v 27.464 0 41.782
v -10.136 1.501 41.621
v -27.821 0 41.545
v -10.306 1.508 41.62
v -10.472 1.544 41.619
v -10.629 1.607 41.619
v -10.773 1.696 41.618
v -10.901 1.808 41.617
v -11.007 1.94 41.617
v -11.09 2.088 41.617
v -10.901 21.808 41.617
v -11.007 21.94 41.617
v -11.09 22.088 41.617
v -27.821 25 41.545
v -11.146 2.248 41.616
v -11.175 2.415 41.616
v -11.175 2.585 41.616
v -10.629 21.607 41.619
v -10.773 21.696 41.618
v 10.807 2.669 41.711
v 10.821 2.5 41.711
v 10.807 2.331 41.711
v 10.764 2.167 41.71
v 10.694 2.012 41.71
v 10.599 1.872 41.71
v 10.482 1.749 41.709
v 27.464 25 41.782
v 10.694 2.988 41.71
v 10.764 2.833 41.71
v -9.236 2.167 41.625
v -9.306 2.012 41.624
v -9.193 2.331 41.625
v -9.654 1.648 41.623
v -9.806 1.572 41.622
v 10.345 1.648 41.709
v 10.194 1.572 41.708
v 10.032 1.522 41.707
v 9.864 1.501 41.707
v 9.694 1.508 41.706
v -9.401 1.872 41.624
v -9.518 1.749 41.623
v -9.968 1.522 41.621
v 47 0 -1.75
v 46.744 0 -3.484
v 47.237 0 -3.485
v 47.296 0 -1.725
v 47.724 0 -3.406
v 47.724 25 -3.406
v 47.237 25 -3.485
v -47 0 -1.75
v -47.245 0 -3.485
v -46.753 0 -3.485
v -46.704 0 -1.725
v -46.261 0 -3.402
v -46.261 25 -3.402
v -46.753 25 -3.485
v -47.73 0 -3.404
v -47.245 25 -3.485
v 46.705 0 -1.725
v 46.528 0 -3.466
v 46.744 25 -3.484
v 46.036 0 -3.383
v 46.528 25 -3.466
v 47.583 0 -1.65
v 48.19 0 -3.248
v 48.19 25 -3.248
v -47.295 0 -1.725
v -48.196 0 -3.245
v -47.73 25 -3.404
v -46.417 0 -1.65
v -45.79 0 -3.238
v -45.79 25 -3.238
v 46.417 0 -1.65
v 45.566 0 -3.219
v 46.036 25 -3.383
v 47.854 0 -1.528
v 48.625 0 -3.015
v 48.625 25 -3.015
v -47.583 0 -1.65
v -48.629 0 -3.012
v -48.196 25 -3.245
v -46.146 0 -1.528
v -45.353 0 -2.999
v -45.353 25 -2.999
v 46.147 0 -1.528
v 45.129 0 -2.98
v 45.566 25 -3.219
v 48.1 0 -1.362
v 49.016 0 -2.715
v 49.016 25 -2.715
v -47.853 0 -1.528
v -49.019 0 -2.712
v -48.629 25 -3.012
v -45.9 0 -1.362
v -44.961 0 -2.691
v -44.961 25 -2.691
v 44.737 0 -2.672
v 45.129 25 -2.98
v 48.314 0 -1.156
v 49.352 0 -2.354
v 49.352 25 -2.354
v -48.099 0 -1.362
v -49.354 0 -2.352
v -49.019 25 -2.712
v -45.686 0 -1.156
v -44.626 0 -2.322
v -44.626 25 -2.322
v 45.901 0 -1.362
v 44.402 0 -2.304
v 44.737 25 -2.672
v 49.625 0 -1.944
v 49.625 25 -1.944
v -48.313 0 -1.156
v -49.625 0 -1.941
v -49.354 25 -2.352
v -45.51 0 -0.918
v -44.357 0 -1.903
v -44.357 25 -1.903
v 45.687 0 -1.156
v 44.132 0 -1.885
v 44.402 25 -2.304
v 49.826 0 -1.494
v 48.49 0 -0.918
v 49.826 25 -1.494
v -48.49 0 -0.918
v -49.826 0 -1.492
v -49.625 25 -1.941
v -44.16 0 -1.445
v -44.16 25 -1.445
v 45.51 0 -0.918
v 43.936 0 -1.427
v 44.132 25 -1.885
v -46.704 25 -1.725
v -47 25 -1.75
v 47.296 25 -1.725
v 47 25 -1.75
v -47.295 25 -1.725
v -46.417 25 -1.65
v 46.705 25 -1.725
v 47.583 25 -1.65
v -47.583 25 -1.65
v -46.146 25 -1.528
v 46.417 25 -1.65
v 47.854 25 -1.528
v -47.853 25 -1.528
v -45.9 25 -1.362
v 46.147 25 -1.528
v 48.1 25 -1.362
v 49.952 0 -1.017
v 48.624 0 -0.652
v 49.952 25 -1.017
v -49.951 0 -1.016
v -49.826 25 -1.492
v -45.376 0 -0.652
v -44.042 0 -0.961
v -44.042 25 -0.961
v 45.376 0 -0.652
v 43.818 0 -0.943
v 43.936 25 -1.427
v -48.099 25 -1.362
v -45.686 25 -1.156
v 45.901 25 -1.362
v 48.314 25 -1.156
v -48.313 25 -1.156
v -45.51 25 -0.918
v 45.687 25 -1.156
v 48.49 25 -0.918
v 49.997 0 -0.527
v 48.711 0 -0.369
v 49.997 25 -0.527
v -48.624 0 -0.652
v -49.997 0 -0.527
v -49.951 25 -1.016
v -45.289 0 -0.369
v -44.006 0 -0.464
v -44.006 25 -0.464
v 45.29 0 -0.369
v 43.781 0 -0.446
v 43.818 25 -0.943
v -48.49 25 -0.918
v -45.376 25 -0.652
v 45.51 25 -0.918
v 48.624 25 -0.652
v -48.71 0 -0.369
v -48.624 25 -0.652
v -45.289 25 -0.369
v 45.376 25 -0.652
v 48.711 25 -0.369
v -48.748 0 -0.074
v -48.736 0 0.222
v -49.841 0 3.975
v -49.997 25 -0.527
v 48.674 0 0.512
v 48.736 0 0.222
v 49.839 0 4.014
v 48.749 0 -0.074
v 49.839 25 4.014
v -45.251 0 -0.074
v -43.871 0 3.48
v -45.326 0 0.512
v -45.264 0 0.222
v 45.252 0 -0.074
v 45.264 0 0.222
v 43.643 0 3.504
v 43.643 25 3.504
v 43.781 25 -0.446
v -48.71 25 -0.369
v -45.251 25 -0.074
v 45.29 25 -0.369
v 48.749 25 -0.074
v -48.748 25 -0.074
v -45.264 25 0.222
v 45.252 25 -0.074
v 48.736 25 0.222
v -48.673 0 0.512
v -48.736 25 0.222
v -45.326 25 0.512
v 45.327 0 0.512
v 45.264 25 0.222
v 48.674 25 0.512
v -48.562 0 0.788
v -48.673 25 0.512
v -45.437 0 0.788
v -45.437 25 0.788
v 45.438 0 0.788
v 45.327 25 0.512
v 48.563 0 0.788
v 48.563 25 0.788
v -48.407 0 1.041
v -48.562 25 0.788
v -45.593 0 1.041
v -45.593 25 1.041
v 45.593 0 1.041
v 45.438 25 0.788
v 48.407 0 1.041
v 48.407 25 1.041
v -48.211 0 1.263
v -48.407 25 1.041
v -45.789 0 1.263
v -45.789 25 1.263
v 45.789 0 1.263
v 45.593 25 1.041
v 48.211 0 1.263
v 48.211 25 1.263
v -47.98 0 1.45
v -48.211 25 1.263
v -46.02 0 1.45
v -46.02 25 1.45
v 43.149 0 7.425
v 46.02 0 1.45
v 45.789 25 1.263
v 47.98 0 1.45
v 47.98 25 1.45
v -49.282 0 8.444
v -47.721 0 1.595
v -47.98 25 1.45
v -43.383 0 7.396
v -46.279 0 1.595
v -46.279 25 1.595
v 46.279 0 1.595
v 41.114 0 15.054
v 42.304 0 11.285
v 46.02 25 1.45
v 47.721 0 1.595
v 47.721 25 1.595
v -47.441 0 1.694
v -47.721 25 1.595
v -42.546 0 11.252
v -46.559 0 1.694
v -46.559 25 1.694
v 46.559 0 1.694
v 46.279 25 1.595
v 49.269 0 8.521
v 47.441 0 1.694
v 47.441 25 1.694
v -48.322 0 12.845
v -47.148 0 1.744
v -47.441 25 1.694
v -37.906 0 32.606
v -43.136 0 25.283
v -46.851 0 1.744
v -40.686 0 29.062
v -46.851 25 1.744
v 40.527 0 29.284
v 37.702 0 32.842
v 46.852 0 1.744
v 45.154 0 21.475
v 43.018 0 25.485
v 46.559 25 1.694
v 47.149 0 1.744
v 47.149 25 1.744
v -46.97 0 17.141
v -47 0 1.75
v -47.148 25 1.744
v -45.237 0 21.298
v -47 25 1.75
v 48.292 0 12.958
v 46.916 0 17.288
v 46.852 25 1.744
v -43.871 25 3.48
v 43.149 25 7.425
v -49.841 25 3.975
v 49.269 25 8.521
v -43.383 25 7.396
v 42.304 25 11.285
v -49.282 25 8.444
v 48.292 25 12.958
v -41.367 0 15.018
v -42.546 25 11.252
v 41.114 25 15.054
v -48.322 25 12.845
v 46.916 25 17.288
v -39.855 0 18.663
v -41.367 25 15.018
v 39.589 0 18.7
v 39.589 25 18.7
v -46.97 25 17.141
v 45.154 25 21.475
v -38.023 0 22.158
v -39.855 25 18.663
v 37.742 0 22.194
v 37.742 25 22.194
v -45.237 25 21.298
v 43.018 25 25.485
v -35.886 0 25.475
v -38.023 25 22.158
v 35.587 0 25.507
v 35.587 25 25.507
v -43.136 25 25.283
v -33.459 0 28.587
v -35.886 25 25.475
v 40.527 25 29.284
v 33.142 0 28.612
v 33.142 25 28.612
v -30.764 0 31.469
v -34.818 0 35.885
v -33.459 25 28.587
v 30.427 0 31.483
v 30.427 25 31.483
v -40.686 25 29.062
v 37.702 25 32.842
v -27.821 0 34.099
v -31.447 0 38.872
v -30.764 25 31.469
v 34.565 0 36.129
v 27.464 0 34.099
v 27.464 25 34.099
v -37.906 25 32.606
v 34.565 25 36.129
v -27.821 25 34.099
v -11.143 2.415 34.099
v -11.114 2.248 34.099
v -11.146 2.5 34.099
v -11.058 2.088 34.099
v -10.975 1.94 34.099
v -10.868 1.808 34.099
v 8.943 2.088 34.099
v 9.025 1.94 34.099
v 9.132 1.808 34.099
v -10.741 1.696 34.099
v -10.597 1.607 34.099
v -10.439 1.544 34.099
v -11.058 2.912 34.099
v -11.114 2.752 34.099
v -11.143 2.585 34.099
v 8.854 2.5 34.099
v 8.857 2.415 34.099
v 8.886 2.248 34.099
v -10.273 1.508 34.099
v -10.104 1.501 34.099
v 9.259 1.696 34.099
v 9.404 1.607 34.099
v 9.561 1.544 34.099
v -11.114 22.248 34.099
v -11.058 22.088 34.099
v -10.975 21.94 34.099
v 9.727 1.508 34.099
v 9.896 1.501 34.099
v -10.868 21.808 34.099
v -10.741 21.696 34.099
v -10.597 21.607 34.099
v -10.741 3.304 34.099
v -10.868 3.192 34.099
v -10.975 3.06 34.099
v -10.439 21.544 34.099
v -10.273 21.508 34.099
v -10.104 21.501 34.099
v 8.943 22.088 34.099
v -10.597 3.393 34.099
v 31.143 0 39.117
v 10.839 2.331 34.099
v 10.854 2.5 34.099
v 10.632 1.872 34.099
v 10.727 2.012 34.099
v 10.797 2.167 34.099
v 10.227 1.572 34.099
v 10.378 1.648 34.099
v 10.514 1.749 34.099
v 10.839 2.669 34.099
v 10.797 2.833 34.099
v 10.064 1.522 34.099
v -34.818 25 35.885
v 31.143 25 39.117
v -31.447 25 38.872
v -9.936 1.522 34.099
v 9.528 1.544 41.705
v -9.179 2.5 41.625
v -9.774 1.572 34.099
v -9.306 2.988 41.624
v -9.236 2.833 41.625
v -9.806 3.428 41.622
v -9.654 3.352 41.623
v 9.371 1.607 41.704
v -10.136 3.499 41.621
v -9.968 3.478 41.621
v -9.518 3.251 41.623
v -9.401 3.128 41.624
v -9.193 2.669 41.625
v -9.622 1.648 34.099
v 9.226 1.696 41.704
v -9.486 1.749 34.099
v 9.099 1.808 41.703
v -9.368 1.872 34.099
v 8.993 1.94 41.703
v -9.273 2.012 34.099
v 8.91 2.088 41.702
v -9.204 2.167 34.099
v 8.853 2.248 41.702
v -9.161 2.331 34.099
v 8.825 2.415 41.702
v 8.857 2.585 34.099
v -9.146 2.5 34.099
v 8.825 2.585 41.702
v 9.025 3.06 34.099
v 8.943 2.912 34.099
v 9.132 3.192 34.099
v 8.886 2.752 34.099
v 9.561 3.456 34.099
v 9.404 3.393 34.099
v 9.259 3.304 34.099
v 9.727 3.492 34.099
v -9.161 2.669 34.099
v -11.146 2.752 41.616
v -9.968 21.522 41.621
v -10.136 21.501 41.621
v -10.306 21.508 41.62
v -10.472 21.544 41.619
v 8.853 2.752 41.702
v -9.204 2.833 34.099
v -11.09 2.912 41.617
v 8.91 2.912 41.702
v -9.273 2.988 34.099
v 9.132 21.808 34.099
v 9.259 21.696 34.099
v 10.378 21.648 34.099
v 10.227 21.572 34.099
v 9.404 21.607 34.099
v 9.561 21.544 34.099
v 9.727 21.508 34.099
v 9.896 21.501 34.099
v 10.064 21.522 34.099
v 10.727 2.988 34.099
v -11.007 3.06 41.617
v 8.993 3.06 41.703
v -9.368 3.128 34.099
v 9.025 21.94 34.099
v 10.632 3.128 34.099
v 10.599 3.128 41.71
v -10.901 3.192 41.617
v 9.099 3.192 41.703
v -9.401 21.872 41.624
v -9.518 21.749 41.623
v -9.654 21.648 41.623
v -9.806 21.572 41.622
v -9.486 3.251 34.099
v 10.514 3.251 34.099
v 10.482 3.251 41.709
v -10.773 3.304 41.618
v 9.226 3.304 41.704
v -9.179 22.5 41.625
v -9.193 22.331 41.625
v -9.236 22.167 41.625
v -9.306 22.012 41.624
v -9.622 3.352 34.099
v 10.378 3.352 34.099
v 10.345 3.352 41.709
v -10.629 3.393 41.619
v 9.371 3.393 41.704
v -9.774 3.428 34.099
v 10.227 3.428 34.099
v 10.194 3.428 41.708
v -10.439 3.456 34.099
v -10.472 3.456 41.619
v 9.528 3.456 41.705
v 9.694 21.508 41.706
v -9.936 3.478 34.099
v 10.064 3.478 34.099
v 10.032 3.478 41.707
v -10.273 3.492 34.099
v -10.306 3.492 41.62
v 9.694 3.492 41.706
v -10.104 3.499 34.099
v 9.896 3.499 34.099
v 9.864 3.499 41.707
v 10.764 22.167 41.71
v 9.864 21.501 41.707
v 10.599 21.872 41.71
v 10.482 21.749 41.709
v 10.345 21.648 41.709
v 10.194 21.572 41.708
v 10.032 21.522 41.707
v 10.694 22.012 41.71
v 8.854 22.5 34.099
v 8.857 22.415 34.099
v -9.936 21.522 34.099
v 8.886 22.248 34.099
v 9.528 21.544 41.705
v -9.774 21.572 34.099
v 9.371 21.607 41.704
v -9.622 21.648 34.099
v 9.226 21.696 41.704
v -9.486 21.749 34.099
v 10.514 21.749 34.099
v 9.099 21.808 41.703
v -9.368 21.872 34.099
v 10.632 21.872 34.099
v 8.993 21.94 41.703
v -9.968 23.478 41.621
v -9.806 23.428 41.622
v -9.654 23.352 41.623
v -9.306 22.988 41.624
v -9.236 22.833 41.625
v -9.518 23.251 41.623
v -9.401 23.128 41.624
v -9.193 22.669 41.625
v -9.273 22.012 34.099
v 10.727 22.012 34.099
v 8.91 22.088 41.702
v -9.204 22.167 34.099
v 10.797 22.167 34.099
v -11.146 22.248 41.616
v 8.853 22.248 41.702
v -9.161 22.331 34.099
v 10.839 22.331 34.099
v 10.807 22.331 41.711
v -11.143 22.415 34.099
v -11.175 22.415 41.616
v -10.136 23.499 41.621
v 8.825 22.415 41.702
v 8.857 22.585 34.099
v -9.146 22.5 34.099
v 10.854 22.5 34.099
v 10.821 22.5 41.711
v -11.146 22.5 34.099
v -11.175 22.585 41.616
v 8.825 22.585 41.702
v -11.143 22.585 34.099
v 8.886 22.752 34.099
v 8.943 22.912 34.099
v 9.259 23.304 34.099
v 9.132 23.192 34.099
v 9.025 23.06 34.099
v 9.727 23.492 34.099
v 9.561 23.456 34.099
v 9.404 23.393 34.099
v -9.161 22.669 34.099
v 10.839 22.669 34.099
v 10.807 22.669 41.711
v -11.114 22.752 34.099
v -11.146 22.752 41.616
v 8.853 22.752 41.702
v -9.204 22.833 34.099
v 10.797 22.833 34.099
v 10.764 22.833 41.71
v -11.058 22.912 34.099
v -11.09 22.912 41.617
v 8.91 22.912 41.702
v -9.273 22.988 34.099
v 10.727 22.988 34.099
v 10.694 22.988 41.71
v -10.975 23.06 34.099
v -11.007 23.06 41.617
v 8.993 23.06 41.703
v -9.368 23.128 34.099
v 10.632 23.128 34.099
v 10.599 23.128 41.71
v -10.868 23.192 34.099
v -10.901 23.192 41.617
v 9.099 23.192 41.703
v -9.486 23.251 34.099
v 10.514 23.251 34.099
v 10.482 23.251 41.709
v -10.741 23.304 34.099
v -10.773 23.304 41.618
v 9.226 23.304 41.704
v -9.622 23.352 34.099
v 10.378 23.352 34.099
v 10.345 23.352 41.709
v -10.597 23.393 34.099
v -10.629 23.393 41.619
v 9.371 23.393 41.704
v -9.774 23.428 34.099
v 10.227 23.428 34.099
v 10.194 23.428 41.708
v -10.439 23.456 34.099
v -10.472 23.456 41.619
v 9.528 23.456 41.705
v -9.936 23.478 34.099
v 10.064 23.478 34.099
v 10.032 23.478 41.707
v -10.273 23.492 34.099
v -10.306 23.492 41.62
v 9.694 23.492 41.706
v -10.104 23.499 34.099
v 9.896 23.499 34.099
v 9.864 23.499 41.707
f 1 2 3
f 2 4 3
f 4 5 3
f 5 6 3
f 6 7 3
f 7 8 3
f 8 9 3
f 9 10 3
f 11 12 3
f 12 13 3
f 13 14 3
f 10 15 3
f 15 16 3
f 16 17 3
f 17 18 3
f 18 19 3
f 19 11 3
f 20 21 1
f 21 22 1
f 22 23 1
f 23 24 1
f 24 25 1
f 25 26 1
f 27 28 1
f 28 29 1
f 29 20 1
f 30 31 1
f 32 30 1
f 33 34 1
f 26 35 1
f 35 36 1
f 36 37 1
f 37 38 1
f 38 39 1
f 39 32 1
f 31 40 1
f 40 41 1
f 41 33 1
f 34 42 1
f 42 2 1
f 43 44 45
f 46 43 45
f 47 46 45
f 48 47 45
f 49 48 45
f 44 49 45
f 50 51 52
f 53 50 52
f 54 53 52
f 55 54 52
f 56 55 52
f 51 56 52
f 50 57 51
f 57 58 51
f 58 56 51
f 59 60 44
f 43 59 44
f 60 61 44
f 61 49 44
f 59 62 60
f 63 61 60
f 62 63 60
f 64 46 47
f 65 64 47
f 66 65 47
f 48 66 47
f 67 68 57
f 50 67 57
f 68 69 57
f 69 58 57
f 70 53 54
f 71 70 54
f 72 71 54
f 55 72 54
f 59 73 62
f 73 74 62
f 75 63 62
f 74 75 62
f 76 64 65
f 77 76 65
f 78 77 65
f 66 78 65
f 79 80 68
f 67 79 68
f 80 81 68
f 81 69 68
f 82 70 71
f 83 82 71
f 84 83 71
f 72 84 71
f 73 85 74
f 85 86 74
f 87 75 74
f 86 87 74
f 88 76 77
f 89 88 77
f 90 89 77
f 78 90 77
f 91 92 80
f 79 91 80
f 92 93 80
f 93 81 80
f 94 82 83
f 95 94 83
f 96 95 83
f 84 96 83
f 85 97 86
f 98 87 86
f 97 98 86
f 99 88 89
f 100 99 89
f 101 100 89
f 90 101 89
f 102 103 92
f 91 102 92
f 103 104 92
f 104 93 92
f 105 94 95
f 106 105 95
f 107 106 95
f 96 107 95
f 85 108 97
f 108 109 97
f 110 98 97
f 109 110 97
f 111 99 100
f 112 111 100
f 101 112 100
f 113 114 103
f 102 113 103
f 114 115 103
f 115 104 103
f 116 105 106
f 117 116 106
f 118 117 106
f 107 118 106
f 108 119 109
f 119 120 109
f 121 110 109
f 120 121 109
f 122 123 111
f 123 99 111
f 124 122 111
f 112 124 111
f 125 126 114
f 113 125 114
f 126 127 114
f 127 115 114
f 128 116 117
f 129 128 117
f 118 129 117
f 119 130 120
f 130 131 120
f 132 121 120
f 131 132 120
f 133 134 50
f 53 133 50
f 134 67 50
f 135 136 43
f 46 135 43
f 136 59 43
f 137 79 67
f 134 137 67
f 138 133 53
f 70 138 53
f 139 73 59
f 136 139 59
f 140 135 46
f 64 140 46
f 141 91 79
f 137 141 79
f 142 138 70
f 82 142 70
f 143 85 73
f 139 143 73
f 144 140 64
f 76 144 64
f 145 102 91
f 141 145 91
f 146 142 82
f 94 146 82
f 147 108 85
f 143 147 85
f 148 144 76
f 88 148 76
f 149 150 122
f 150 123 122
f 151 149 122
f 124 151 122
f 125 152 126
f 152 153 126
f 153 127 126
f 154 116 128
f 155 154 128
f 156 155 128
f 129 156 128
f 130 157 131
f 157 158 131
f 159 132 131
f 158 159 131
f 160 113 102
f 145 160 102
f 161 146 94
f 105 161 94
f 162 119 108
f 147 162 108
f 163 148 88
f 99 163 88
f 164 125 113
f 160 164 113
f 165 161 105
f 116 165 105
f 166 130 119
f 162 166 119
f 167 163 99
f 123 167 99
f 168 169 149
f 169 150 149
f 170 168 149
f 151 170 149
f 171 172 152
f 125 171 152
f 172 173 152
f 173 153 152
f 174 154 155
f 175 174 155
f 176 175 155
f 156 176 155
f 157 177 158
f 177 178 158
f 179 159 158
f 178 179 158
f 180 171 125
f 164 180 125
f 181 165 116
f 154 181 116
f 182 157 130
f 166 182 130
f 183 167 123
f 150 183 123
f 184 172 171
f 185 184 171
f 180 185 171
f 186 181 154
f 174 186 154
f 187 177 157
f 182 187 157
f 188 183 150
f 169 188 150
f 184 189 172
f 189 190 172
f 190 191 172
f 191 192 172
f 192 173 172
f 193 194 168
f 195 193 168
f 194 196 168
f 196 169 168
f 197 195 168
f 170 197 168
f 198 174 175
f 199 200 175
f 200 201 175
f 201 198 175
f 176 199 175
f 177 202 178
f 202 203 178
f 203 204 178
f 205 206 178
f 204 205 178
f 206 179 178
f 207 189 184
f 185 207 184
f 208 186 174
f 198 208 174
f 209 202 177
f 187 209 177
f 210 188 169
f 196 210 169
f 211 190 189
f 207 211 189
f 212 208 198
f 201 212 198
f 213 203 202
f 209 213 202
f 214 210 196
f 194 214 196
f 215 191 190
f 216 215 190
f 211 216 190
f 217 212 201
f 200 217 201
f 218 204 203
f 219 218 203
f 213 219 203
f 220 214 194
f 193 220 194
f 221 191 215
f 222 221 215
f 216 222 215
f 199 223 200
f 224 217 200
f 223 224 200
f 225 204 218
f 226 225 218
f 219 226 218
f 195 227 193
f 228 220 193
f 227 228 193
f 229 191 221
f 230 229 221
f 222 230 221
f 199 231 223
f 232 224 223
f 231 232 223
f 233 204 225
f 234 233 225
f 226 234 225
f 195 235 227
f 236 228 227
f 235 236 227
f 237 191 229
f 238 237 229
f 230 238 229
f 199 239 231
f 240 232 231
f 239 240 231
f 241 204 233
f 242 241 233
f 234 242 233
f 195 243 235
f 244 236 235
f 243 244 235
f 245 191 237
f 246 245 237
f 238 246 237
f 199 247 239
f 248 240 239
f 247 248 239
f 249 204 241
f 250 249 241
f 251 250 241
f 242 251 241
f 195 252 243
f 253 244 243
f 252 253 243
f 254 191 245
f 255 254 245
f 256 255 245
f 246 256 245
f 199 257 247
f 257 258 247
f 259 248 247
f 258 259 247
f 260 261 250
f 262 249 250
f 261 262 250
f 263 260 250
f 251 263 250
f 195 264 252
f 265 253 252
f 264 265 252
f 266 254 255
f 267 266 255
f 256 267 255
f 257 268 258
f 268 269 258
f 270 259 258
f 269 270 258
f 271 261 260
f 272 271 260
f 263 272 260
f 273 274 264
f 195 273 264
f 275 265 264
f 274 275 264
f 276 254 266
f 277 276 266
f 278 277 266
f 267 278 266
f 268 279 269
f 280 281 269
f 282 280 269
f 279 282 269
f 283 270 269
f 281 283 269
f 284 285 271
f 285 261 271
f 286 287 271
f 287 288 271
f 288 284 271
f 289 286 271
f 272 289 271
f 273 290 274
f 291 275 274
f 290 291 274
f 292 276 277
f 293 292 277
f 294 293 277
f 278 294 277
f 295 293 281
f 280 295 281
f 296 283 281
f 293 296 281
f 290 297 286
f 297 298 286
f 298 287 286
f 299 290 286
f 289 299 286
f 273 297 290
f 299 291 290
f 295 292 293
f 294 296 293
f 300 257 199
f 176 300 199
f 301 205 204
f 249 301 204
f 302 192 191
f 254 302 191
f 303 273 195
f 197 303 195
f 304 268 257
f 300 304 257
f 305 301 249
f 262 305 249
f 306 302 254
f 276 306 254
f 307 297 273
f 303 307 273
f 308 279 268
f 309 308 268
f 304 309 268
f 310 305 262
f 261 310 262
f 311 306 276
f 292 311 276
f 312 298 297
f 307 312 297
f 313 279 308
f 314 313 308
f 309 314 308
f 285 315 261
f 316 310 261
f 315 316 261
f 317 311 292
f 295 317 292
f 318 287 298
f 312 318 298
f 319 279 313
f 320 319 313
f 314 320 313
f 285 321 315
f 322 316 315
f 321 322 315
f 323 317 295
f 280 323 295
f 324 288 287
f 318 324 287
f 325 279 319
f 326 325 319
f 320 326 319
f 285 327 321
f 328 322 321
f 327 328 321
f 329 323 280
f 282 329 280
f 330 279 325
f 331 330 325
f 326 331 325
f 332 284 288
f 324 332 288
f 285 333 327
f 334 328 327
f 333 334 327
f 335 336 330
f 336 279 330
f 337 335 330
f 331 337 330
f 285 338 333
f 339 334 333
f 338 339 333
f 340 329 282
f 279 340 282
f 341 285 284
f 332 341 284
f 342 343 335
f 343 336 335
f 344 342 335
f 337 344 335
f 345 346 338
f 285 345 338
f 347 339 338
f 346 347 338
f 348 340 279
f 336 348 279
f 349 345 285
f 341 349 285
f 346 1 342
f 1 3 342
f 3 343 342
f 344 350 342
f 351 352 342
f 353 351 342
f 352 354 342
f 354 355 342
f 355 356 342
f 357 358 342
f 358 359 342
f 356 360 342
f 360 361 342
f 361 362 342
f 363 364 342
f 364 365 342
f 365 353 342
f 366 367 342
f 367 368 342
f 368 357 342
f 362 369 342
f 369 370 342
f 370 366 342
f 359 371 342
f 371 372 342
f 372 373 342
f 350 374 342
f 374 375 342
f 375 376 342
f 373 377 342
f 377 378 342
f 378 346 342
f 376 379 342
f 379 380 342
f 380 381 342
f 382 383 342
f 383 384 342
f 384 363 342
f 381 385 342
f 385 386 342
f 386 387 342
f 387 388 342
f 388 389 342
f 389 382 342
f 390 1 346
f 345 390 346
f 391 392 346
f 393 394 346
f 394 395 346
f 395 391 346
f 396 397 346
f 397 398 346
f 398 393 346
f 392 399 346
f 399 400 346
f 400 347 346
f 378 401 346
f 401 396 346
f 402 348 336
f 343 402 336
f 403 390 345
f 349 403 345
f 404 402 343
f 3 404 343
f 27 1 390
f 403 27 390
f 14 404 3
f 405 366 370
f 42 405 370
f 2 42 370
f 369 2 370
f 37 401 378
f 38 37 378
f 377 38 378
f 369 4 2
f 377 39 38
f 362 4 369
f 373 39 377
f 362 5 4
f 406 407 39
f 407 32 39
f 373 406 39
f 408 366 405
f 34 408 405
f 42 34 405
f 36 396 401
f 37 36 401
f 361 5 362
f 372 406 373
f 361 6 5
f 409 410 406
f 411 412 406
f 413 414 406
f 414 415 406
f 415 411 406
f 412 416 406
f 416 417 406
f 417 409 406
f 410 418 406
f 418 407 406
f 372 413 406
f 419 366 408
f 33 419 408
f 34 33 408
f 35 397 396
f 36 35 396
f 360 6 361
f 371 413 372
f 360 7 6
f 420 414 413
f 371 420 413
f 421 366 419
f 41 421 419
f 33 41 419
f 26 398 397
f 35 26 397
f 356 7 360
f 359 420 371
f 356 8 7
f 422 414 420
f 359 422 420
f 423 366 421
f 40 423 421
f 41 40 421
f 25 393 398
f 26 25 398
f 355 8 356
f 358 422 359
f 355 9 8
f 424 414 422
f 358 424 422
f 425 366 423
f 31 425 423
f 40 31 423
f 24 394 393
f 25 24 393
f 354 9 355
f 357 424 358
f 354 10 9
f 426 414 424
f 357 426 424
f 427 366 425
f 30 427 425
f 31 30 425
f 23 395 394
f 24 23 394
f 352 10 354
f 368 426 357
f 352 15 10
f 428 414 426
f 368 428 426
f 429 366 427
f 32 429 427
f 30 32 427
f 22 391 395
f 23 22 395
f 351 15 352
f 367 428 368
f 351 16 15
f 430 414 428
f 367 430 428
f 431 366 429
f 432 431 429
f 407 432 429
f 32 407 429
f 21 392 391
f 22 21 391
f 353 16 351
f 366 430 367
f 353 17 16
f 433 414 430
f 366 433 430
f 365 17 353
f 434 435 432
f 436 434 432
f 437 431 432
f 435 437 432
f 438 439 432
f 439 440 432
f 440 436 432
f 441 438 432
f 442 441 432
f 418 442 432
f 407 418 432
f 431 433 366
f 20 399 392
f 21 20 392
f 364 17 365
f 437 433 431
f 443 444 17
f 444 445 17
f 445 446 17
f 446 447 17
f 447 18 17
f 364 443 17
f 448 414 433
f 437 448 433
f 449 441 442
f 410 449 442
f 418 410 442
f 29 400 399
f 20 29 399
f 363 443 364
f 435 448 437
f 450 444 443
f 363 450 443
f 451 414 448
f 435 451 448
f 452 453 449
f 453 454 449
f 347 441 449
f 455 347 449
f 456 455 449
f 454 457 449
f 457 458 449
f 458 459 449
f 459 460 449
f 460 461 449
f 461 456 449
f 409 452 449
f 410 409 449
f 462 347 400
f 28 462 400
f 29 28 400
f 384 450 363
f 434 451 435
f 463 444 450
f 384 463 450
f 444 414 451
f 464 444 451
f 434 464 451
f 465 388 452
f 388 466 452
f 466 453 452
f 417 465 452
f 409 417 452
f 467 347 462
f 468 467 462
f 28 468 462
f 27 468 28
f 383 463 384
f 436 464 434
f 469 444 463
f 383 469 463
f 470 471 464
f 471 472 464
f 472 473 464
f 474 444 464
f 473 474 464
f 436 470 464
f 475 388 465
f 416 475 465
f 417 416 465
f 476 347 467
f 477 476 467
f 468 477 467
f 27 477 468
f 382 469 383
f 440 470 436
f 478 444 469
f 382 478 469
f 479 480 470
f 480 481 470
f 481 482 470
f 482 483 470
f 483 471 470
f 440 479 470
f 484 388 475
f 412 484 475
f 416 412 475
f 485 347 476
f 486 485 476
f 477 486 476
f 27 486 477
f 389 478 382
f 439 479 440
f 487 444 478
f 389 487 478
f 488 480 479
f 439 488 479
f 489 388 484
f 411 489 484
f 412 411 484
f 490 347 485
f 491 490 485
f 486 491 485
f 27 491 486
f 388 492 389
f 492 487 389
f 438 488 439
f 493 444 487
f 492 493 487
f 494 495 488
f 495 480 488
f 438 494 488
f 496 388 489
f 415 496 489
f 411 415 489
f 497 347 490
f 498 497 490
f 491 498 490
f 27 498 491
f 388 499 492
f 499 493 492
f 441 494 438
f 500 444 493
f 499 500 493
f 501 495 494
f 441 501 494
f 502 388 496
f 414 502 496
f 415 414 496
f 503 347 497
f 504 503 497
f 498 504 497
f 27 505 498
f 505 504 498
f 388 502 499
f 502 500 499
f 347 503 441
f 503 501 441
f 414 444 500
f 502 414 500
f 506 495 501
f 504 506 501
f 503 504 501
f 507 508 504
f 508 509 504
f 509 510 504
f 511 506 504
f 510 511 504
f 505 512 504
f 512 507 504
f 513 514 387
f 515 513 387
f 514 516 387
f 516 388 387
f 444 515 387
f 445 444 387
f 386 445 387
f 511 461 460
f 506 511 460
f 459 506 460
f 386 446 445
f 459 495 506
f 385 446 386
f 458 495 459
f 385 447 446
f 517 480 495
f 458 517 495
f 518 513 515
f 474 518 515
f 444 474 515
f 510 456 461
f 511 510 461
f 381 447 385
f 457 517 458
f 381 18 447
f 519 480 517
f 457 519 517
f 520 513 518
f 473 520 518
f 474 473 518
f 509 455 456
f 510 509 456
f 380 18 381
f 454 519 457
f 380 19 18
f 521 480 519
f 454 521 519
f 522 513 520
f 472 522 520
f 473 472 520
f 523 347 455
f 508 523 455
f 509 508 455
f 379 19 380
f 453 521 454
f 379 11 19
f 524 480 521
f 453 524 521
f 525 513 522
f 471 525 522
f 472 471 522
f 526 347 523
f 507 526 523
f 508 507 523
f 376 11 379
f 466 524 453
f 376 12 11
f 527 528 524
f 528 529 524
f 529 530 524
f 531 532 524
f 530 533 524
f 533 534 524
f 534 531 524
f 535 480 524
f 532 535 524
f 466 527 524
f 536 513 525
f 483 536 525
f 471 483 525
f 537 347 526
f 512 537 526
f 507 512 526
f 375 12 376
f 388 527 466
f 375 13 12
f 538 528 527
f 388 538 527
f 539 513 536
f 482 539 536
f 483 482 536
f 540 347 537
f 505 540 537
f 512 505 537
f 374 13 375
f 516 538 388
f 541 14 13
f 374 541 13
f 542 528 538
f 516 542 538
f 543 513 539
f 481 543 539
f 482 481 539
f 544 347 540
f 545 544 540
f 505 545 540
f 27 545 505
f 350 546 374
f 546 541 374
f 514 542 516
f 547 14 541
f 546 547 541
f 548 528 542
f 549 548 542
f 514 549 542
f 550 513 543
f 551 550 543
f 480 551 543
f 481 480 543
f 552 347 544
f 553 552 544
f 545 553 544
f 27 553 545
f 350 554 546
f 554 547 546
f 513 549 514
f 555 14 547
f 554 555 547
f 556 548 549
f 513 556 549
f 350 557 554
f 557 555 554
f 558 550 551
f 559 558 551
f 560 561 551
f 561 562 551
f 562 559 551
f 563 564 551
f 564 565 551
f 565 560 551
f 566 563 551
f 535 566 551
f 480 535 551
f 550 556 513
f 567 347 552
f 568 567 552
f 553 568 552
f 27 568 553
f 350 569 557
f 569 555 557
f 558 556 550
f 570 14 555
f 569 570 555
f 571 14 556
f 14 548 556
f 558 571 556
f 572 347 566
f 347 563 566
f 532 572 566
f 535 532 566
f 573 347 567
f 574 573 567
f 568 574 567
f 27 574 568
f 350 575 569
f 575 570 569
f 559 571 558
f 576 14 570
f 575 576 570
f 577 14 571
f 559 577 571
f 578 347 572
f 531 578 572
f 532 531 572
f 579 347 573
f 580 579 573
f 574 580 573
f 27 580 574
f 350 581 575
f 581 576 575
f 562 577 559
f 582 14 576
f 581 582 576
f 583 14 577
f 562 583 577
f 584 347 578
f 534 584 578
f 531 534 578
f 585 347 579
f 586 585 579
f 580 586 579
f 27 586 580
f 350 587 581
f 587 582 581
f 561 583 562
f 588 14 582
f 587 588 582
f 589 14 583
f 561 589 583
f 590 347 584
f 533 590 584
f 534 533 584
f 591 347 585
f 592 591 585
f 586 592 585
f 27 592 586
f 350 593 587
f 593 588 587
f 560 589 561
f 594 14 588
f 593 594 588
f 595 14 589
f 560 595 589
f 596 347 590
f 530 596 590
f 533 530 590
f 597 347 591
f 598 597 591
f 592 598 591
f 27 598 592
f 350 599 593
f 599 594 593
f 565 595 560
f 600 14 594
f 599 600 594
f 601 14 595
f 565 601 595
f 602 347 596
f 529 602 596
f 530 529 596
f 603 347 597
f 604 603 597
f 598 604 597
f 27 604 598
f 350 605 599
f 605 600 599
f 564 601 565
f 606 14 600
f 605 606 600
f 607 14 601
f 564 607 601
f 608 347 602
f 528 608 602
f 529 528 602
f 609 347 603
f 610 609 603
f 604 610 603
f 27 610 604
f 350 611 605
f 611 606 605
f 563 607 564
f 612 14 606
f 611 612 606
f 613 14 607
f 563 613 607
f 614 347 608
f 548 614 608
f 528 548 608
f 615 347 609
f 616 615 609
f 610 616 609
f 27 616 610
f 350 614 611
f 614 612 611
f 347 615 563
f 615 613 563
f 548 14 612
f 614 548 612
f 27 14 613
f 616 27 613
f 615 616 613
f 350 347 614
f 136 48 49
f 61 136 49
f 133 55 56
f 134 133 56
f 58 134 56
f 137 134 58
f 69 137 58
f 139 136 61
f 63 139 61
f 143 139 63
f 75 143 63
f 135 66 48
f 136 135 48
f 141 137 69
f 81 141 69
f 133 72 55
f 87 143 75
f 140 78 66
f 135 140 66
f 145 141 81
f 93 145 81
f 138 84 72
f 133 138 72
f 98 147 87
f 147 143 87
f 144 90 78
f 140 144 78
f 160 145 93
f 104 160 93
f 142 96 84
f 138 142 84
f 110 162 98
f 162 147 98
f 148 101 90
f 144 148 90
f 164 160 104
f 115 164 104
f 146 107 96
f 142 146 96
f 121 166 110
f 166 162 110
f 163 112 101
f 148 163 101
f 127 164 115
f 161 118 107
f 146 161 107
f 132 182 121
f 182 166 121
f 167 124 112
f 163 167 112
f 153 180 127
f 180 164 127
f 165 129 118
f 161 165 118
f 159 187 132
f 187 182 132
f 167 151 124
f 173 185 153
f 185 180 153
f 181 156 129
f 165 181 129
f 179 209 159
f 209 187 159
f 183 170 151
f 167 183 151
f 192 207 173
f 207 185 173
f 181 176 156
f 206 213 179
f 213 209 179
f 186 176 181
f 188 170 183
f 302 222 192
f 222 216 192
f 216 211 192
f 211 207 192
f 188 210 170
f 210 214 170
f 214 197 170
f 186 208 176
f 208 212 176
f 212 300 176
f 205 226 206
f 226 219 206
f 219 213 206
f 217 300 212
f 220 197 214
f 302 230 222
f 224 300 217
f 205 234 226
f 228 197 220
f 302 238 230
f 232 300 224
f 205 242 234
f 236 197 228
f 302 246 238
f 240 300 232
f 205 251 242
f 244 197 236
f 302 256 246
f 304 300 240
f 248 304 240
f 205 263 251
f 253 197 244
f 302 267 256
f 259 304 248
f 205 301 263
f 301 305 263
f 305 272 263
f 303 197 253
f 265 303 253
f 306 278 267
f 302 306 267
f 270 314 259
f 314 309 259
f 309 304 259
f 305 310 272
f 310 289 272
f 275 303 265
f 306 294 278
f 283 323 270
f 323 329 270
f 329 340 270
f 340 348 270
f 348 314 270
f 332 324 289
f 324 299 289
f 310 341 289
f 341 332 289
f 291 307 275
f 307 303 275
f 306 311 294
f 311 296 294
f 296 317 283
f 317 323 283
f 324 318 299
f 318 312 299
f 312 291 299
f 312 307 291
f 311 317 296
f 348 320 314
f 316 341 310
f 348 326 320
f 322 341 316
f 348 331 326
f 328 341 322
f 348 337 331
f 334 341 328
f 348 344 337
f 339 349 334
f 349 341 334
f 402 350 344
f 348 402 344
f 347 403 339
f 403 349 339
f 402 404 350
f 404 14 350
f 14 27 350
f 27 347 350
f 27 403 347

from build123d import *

# Parameters (mm, degrees)
SKETCH1_R           = 1.75
BOSS_EXTRUDE1_DEPTH = 25
FILLET2_R           = 3
FILLET3_R           = 3
SKETCH2_R           = 1
CUT_EXTRUDE1_DEPTH  = 10


with BuildPart() as part:
    # Sketch1 → Boss-Extrude1 (new body)
    with BuildSketch(Plane(origin=(0, 0, 0), x_dir=(1, 0, 0), z_dir=(0, 1, 0))):
        with BuildLine():
            Line((49.859310292, 3.748223209), (43.664405044, 3.223270017))
            ThreePointArc((43.664405044, 3.223270017), (40.162533858, -17.433892609), (27.463538801, -34.098735665))
            Line((27.463538801, -34.098735665), (-27.821692195, -34.098735665))
            ThreePointArc((-27.821692195, -34.098735665), (-40.425237601, -17.394553614), (-43.88915269, 3.242315021))
            Line((-43.88915269, 3.242315021), (-49.859310292, 3.748223209))
            ThreePointArc((-49.859310292, 3.748223209), (-44.960475989, -21.875913669), (-27.821692195, -41.544595839))
            Line((-27.821692195, -41.544595839), (27.463538801, -41.782221537))
            ThreePointArc((27.463538801, -41.782221537), (44.866035011, -22.06895789), (49.859310292, 3.748223209))
        make_face()
        with Locations(Location((-47, 0, 0), (0, 0, 270))):
            Circle(SKETCH1_R, mode=Mode.SUBTRACT)
        with Locations(Location((47, 0, 0), (0, 0, 90))):
            Circle(SKETCH1_R, mode=Mode.SUBTRACT)
    extrude(amount=BOSS_EXTRUDE1_DEPTH)

    # Fillet2
    fillet2_edges = [part.edges().sort_by_distance(p)[0] for p in [
        (43.664405044, 12.5, -3.223270017),
        (49.859310292, 12.5, -3.748223209),
        (-43.88915269, 12.5, -3.242315021),
    ]]
    fillet(fillet2_edges, radius=FILLET2_R)

    # Fillet3
    # the kernel refuses this fillet: 3 mm, written as the material it takes off along each edge
    with BuildSketch(Plane(origin=(-49.859310292, -8.061567981, -3.748223209), x_dir=(-0.04276994163543241, 0, 0.9990849473856073), z_dir=(0, 1, 0))) as fillet3_piece_1:
        with BuildLine():
            CenterArc((3.127888377, 2.998439861), FILLET3_R, 177.607640596, 94.240255032)
            Line((0.13050316, 3.123667112), (0, 0))
            ThreePointArc((0, 0), (1.612313596, -0.026002313), (3.224627192, 0))
        make_face()
    extrude(amount=41.123135962, mode=Mode.SUBTRACT)

    # Sketch2 → Cut-Extrude1 (cut)
    with BuildSketch(Plane(origin=(-0.179076697, 0, 41.663408688), x_dir=(0.9999907629660516, 0, 0.004298137105095237), z_dir=(-0.004298137105095237, 0, 0.9999907629660516))):
        with Locations((10, 2.5)):
            Circle(SKETCH2_R)
        with Locations((-10, 2.5)):
            Circle(SKETCH2_R)
        with Locations((10, 22.5)):
            Circle(SKETCH2_R)
        with Locations((-10, 22.5)):
            Circle(SKETCH2_R)
    extrude(amount=-CUT_EXTRUDE1_DEPTH, mode=Mode.SUBTRACT)


solid = part.part
